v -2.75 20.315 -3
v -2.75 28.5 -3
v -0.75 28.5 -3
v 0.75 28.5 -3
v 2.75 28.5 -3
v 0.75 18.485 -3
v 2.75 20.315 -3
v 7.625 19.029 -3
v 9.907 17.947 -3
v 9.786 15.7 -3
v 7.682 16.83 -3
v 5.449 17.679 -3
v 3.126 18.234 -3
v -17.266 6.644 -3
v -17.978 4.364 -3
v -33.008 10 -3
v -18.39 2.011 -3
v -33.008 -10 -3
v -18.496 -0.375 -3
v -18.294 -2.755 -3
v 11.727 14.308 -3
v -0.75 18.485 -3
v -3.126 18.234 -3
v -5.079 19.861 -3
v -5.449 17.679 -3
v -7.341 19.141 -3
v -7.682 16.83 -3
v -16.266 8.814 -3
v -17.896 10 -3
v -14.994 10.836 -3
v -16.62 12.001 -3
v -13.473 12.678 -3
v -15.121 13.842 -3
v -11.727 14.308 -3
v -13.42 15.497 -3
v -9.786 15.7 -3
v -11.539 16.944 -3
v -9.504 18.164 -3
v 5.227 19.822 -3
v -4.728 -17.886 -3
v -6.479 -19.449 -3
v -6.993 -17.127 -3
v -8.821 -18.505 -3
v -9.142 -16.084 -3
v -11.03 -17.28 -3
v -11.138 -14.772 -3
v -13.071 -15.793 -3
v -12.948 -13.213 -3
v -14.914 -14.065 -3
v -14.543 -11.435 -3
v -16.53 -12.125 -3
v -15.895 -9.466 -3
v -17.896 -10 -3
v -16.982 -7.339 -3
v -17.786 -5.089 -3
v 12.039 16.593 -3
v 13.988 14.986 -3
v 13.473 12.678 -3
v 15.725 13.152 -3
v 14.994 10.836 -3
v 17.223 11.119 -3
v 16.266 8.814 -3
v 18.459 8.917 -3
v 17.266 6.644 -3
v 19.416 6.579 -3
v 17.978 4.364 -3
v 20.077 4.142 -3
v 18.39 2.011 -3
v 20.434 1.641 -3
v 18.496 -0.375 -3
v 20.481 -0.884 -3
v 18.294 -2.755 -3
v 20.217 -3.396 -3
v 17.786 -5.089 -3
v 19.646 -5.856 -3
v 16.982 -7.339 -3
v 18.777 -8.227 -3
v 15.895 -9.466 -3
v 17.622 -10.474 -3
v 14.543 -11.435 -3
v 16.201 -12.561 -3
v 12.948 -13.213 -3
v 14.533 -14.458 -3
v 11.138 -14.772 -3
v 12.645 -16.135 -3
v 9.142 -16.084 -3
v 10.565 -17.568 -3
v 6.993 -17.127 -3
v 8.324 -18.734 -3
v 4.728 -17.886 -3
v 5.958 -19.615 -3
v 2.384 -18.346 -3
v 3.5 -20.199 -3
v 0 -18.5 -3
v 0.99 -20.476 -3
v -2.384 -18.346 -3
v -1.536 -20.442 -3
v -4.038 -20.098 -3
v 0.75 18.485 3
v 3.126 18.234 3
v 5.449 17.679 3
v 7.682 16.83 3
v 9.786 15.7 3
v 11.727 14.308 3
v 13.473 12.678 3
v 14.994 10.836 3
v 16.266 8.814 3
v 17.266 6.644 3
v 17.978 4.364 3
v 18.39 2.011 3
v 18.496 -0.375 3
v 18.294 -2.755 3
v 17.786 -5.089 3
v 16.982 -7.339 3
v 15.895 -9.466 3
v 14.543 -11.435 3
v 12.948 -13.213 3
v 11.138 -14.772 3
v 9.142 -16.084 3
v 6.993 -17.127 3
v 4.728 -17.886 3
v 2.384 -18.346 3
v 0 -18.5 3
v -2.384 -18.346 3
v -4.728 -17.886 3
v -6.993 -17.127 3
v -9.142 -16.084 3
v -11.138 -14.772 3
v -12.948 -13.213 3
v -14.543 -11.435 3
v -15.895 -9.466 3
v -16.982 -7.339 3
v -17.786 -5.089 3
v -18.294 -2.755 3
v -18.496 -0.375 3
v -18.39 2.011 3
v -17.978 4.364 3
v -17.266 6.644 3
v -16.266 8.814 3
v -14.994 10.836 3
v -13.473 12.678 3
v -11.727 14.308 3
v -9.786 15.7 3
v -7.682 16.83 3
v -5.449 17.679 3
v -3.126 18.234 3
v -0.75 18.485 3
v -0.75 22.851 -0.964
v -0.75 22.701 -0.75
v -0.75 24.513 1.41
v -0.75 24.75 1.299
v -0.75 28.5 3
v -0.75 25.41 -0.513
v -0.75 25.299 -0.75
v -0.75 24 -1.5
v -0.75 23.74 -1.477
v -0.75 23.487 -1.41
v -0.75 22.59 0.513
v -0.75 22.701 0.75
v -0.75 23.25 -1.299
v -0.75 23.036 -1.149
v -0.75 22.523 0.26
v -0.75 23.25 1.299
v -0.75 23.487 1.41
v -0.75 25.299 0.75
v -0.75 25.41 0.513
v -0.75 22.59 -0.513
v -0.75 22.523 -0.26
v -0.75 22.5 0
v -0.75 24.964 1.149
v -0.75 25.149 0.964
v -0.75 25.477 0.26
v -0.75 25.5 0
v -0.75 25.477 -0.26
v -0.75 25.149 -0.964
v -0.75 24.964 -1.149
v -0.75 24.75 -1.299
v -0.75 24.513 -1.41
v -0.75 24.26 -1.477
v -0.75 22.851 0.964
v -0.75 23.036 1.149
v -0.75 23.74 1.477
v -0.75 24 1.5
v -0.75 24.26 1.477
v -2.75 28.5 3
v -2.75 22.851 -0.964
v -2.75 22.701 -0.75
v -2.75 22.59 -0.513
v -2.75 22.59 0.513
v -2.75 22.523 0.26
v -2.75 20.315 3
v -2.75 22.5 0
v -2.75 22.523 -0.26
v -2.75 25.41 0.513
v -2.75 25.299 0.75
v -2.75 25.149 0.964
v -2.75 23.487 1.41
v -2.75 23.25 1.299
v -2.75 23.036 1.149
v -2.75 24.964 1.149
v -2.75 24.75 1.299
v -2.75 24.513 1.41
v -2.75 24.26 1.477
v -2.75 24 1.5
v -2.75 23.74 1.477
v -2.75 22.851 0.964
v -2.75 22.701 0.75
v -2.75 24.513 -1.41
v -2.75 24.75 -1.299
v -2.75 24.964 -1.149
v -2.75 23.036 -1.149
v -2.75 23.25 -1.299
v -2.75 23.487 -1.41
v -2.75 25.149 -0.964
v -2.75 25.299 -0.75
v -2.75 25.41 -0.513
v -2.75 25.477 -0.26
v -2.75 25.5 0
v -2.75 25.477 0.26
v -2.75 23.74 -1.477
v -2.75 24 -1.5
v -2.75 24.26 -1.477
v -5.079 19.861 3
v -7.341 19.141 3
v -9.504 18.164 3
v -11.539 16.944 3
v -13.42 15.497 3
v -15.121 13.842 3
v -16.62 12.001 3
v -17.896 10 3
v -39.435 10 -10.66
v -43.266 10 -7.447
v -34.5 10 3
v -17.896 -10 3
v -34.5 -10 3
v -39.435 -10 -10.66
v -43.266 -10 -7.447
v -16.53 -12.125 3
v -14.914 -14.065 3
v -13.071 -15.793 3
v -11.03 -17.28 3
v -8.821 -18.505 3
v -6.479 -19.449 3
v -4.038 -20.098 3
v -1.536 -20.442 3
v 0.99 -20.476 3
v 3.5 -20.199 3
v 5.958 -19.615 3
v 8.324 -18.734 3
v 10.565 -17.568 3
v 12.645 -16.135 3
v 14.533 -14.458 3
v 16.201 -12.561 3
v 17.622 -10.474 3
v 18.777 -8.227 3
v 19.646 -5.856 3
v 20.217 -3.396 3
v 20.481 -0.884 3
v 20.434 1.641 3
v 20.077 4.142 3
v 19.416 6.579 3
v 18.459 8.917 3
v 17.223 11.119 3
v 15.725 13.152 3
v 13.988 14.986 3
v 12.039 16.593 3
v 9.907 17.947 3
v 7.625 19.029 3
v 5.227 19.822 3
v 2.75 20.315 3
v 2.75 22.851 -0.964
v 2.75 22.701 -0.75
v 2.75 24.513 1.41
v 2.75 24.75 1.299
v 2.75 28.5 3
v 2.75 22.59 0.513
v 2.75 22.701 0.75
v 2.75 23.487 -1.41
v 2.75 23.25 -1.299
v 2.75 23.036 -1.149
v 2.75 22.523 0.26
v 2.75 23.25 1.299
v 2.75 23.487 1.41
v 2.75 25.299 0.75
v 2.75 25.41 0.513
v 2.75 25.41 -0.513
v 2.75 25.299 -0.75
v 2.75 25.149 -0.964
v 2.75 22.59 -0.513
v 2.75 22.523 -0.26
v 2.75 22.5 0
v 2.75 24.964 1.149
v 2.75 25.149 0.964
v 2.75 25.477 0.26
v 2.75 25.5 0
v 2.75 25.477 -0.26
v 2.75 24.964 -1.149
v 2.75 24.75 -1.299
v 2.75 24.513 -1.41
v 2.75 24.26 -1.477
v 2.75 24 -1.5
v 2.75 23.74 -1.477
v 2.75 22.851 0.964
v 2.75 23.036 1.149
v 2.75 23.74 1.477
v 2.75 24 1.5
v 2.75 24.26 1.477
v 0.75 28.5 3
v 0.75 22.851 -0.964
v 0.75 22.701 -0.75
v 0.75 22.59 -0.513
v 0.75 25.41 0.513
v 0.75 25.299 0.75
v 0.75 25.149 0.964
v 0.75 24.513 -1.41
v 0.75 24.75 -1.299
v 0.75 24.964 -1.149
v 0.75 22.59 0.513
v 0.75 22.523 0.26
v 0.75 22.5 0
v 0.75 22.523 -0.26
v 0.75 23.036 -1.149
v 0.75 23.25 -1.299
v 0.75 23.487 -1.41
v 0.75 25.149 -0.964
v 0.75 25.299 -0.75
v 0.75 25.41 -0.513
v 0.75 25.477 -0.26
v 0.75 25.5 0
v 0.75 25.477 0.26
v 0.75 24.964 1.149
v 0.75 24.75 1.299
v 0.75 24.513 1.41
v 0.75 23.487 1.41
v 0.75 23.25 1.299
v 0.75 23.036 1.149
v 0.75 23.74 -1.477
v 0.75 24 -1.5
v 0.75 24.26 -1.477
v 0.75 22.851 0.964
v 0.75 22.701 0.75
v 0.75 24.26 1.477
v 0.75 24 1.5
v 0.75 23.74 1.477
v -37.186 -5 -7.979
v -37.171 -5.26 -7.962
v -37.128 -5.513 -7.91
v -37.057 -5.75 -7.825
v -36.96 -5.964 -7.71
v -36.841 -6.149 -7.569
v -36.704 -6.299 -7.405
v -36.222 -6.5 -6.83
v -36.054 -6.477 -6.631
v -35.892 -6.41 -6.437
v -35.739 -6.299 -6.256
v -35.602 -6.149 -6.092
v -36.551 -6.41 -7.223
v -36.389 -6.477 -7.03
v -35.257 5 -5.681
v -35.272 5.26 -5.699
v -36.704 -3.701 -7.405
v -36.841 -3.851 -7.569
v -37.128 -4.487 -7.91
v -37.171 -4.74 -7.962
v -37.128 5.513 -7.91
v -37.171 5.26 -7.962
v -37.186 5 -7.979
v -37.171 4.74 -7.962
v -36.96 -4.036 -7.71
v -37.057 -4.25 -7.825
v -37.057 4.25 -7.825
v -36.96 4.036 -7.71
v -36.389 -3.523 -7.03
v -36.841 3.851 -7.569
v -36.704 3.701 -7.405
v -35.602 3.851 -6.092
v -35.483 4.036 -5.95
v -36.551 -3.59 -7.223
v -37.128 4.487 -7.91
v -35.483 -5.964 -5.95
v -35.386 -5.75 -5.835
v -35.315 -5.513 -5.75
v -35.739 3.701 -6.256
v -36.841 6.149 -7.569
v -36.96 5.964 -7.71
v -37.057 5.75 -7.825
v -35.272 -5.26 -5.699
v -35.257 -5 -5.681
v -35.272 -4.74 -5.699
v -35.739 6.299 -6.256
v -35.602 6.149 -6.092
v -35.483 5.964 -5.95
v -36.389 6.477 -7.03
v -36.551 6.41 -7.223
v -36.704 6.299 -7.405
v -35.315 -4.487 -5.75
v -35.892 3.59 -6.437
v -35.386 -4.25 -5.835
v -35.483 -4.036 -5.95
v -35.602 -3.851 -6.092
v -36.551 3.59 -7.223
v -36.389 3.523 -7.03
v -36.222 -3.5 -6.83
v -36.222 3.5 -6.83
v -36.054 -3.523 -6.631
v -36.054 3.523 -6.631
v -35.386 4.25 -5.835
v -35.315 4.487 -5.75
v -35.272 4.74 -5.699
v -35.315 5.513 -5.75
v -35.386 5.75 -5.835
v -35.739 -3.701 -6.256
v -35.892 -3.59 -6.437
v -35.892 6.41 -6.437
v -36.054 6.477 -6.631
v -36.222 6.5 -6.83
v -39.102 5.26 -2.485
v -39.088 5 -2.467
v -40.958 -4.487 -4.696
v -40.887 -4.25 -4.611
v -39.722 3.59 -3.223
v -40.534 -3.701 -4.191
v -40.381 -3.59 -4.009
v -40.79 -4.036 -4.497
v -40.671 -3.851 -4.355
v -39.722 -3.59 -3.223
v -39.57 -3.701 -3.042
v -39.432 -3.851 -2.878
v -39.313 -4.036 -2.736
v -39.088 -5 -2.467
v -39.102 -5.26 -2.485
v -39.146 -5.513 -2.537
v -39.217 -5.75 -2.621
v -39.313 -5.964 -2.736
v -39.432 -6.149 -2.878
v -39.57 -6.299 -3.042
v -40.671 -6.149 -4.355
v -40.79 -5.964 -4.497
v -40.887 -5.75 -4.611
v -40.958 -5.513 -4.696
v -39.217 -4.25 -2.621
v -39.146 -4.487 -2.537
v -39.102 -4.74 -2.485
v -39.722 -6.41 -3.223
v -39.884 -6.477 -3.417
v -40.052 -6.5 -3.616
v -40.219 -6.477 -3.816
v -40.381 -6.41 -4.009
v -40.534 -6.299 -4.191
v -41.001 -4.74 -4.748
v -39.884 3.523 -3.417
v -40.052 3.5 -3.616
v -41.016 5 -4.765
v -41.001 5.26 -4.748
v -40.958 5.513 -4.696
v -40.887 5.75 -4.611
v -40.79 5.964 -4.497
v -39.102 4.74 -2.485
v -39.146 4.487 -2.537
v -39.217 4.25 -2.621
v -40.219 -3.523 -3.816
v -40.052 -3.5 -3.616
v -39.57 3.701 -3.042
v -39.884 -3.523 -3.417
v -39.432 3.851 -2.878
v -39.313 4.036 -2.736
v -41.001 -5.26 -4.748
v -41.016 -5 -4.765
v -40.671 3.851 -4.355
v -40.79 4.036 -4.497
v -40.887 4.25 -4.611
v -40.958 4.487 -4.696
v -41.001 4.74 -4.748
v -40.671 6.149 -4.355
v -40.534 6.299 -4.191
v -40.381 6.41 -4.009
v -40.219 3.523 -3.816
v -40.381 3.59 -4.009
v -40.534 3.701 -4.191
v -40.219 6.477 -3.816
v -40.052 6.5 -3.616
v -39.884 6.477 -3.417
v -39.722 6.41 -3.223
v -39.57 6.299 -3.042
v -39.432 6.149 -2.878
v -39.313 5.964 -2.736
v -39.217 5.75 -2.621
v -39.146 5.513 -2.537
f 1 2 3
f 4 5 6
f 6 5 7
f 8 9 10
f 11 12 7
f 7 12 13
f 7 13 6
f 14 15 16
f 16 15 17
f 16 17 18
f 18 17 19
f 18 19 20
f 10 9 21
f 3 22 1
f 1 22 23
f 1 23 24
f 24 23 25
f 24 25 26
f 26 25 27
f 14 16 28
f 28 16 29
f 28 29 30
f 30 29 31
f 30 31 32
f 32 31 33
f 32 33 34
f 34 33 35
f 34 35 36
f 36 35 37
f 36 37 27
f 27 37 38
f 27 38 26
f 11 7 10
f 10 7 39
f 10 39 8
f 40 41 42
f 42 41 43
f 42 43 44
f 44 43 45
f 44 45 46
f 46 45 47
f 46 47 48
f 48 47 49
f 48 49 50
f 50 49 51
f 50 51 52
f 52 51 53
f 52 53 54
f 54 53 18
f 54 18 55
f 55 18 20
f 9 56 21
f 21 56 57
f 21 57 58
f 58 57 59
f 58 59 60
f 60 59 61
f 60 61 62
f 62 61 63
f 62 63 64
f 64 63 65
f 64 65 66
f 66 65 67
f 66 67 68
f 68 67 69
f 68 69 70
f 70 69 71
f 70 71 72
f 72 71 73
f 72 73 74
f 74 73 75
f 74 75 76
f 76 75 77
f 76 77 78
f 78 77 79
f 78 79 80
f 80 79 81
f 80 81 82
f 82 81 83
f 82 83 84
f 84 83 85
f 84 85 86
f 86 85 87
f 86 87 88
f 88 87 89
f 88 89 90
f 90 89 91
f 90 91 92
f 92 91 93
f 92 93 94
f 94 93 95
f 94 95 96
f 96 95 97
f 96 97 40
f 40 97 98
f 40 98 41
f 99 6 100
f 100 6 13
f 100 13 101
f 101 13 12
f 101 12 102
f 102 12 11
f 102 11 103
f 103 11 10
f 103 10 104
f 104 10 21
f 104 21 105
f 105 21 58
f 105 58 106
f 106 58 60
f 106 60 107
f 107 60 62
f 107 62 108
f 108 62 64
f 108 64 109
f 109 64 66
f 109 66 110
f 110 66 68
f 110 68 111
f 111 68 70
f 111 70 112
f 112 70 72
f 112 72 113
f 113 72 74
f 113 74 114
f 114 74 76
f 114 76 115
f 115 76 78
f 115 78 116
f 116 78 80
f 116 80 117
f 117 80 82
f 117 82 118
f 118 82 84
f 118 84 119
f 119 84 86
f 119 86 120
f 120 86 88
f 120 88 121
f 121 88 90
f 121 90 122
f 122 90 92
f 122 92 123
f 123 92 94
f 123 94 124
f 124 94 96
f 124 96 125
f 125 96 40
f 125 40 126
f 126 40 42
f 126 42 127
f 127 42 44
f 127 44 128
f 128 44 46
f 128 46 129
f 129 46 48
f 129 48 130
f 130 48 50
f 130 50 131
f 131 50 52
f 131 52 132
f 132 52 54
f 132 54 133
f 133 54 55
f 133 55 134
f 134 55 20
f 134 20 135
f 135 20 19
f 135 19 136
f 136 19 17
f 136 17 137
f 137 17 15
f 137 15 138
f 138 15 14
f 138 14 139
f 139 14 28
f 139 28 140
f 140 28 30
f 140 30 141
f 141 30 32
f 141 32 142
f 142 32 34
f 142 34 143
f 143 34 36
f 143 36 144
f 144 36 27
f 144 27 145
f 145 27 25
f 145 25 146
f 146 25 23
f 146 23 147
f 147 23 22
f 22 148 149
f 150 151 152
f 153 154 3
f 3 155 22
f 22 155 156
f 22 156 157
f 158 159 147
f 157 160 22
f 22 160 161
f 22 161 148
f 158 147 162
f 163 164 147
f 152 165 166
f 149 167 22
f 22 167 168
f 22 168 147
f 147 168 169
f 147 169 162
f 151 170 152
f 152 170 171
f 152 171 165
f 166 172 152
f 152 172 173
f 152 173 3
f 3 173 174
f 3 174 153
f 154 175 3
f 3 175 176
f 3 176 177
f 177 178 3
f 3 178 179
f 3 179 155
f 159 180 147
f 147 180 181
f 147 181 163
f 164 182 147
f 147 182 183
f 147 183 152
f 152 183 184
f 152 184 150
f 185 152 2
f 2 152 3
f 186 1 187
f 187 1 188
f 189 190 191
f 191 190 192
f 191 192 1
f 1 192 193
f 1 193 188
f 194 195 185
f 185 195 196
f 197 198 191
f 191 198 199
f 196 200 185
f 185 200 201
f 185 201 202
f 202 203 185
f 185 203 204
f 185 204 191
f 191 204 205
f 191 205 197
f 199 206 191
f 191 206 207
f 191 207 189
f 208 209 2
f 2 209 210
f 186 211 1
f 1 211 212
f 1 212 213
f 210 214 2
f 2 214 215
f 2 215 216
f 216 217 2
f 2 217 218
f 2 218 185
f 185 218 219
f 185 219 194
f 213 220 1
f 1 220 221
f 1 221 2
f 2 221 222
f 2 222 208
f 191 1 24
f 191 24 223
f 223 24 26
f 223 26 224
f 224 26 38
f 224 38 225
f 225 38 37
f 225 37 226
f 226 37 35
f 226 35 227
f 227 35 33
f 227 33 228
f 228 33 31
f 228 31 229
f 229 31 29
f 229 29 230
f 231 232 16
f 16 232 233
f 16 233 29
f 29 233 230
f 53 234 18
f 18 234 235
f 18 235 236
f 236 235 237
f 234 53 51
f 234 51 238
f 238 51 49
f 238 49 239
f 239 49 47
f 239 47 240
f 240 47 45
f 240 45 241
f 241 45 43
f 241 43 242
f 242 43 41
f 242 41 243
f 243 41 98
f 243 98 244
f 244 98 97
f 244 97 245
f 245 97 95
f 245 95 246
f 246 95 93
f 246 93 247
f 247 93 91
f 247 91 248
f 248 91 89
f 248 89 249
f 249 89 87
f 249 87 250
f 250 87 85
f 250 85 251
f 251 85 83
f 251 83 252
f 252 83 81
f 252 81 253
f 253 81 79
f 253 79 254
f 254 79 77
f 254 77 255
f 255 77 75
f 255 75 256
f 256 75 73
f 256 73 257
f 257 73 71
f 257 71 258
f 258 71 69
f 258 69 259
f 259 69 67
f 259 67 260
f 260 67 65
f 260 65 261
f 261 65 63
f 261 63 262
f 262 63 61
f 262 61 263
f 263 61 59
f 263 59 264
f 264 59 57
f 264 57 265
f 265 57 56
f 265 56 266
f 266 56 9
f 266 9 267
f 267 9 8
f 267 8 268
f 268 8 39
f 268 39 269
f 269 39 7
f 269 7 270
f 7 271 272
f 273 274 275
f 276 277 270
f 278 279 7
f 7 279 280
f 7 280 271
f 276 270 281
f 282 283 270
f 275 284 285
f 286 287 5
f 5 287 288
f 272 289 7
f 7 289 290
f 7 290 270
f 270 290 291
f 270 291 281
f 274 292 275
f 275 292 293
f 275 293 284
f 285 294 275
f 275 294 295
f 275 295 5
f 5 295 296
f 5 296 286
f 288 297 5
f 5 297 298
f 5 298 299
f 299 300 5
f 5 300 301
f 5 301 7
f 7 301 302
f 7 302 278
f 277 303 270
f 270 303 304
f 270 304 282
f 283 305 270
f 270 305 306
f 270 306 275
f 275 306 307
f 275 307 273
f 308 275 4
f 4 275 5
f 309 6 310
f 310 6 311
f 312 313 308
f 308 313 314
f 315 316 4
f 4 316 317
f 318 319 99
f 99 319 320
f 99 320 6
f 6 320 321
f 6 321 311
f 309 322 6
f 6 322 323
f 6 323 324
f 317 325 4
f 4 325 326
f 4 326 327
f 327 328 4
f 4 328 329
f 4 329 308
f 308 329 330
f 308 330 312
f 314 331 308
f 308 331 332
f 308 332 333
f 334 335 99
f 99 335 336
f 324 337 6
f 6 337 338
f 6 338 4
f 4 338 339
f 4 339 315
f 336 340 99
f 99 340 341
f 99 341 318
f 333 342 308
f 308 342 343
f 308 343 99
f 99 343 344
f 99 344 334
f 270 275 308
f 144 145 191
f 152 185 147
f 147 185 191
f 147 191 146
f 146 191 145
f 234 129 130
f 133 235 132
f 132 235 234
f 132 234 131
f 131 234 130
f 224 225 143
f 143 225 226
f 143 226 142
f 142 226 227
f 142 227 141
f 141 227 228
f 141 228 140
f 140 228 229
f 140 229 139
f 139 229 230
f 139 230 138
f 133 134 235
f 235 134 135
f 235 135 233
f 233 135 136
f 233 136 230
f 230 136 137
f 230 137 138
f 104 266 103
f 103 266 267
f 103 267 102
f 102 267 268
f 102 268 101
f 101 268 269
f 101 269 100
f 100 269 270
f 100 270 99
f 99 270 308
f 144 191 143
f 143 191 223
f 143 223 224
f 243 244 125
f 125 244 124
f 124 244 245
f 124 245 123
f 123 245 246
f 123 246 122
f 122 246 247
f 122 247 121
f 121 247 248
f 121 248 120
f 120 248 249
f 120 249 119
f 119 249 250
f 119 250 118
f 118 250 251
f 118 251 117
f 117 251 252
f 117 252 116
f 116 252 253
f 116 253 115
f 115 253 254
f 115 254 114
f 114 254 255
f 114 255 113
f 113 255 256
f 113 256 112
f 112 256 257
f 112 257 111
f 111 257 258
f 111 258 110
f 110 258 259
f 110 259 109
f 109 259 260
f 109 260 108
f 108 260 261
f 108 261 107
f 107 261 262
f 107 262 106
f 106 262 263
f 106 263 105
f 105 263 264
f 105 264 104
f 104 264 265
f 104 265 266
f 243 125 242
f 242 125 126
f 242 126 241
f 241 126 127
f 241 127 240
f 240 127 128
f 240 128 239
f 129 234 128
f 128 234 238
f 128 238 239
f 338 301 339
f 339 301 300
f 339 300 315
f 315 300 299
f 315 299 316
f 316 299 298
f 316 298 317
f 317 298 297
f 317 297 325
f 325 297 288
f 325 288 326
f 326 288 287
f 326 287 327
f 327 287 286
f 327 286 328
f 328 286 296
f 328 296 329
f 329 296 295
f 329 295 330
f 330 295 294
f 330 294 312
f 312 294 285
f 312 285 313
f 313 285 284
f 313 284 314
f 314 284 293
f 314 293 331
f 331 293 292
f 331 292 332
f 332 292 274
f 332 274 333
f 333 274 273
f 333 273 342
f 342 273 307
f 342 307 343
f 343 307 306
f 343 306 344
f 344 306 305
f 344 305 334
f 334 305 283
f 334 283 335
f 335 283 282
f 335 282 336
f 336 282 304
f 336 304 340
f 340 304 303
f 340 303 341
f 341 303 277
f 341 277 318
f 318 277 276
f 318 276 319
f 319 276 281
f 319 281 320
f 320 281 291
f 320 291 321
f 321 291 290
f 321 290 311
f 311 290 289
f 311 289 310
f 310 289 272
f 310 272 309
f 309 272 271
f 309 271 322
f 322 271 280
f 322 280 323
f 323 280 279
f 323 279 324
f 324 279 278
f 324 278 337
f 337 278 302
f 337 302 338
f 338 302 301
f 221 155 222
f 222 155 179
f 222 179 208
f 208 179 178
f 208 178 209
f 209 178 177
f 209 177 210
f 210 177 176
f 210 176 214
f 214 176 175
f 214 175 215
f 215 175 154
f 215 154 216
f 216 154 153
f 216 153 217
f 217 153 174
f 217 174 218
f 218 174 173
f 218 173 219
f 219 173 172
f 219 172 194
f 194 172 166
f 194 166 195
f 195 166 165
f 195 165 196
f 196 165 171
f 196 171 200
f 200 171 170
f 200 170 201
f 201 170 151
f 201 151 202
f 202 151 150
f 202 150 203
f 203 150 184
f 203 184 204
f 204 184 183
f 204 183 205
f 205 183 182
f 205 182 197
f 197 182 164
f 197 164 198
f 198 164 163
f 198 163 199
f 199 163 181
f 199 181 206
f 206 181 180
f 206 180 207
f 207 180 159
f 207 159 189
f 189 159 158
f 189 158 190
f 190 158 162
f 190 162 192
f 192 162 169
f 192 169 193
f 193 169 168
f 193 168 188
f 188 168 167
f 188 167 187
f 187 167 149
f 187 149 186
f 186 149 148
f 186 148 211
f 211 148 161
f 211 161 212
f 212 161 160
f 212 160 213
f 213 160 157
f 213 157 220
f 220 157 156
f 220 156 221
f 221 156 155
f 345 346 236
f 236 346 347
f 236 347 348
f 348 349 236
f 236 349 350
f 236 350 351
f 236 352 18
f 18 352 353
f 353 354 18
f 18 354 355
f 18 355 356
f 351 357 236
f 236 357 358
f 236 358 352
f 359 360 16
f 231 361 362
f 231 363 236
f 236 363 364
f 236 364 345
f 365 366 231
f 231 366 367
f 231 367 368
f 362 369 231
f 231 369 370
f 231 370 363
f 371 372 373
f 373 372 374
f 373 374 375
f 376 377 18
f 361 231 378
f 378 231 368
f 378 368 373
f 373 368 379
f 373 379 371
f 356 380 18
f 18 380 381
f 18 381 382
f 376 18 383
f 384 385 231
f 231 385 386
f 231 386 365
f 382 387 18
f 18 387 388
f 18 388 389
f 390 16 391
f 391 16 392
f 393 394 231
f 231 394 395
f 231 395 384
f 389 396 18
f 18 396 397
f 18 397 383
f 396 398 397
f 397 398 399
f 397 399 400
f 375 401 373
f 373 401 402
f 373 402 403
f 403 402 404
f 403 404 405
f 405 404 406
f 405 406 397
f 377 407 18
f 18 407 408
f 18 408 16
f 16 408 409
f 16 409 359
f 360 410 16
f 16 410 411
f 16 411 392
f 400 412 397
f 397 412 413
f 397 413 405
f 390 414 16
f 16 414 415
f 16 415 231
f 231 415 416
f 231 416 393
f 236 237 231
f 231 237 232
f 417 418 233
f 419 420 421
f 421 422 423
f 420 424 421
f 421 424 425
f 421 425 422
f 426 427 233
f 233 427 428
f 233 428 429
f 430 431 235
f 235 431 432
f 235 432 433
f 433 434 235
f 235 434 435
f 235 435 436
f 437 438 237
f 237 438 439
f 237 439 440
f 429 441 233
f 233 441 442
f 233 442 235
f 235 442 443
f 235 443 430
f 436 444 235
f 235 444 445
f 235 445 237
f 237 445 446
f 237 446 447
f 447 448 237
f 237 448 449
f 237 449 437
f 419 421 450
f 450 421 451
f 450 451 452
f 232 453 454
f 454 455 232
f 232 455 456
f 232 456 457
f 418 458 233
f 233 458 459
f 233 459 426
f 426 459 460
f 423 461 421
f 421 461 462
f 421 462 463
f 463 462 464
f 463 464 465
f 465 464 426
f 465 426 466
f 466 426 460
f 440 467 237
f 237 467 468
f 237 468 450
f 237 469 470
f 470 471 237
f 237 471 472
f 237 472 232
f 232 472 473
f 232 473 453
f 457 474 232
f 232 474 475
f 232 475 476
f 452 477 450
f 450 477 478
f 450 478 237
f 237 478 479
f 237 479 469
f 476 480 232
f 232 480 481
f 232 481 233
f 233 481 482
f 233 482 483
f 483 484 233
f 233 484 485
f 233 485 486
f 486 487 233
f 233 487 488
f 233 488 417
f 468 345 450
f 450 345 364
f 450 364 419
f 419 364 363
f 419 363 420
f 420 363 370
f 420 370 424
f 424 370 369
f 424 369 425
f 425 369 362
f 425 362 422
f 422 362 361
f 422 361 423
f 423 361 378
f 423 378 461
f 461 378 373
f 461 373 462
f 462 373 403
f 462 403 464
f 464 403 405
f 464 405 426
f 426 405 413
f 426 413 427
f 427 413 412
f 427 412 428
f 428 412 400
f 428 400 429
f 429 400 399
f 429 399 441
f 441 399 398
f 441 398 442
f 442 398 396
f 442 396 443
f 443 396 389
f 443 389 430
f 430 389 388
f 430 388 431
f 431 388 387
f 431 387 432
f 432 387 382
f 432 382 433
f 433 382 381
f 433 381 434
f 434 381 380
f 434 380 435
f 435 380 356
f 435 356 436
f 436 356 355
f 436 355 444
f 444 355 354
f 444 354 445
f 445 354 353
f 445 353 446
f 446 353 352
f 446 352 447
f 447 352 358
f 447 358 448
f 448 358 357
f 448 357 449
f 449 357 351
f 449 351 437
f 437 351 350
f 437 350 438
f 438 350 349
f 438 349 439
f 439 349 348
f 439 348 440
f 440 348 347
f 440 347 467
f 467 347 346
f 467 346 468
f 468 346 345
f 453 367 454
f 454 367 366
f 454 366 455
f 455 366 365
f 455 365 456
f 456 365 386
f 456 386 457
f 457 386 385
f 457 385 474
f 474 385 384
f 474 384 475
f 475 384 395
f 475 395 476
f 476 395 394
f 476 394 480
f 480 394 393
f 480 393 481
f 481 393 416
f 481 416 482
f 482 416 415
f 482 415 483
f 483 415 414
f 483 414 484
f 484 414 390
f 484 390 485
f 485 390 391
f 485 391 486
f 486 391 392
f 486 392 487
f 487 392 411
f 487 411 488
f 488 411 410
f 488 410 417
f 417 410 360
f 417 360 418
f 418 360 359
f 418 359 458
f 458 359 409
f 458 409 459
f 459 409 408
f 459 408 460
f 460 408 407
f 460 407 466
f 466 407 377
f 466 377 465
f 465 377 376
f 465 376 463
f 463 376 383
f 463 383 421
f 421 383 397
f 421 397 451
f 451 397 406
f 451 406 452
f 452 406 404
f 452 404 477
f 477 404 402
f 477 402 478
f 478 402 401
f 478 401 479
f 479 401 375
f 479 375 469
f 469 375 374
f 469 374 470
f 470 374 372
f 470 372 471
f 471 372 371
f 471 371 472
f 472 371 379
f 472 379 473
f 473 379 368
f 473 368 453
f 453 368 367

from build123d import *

# Parameters (mm, degrees)
BOSS_EXTRUDE1_DEPTH             = 3
SKETCH2_R                       = 1.5
CUT_EXTRUDE1_DEPTH              = 21.5
CUT_EXTRUDE1_DEPTH_BACK         = 35.5
BOSS_EXTRUDE2_REACH             = 30.5
BOSS_EXTRUDE2_DIRECTION_2_REACH = 22.5
SKETCH4_R                       = 1.5
CUT_EXTRUDE2_DEPTH              = 46.913208795
CUT_EXTRUDE2_DEPTH_BACK         = 12.714884867


with BuildPart() as part:
    # Sketch1 → Boss-Extrude1 (new body, symmetric)
    with BuildSketch(Plane.XY):
        with BuildLine():
            ThreePointArc((20.5, 0), (15.437373481, 13.48842096), (2.75, 20.314711418))
            Line((2.75, 20.314711418), (2.75, 18.294466376))
            ThreePointArc((2.75, 18.294466376), (14.020074893, 12.070107705), (18.5, 0))
            ThreePointArc((18.5, 0), (-12.070107705, -14.020074893), (-2.75, 18.294466376))
            Line((-2.75, 18.294466376), (-2.75, 20.314711418))
            ThreePointArc((-2.75, 20.314711418), (-11.53940193, 16.943795416), (-17.895530168, 10))
            ThreePointArc((-17.895530168, 10), (-20.5, 0), (-17.895530168, -10))
            ThreePointArc((-17.895530168, -10), (5.166799374, -19.838200126), (20.5, 0))
        make_face()
        with BuildLine():
            ThreePointArc((2.75, 20.314711418), (1.752101194, 20.424988162), (0.75, 20.486275894))
            Line((0.75, 20.486275894), (0.75, 18.484791046))
            ThreePointArc((0.75, 18.484791046), (1.752585481, 18.416797879), (2.75, 18.294466376))
            Line((2.75, 18.294466376), (2.75, 20.314711418))
        make_face()
        with BuildLine():
            Line((-0.75, 18.484791046), (-0.75, 20.486275894))
            ThreePointArc((-0.75, 20.486275894), (-1.752101194, 20.424988162), (-2.75, 20.314711418))
            Line((-2.75, 20.314711418), (-2.75, 18.294466376))
            ThreePointArc((-2.75, 18.294466376), (-1.752585481, 18.416797879), (-0.75, 18.484791046))
        make_face()
        with BuildLine():
            ThreePointArc((-2.75, 20.314711418), (-1.752101194, 20.424988162), (-0.75, 20.486275894))
            Line((-0.75, 20.486275894), (-0.75, 28.5))
            Line((-0.75, 28.5), (-2.75, 28.5))
            Line((-2.75, 28.5), (-2.75, 25.5))
            Line((-2.75, 25.5), (-2.75, 22.5))
            Line((-2.75, 22.5), (-2.75, 20.314711418))
        make_face()
        with BuildLine():
            Line((2.75, 25.5), (2.75, 28.5))
            Line((2.75, 28.5), (0.75, 28.5))
            Line((0.75, 28.5), (0.75, 20.486275894))
            ThreePointArc((0.75, 20.486275894), (1.752101194, 20.424988162), (2.75, 20.314711418))
            Line((2.75, 20.314711418), (2.75, 22.5))
            Line((2.75, 22.5), (2.75, 25.5))
        make_face()
        with BuildLine():
            Line((-20.5, -10), (-17.895530168, -10))
            ThreePointArc((-17.895530168, -10), (-20.5, 0), (-17.895530168, 10))
            Line((-17.895530168, 10), (-20.5, 10))
            Line((-20.5, 10), (-34.5, 10))
            Line((-34.5, 10), (-34.5, -10))
            Line((-34.5, -10), (-20.5, -10))
        make_face()
    extrude(amount=BOSS_EXTRUDE1_DEPTH, both=True)

    # Sketch2 → Cut-Extrude1 (cut, two sides)
    with BuildSketch(Plane(origin=(0, 0, 0), x_dir=(0, 0, -1), z_dir=(1, 0, 0))) as cut_extrude1_sk:
        with Locations((0, 24)):
            Circle(SKETCH2_R)
    extrude(amount=CUT_EXTRUDE1_DEPTH, mode=Mode.SUBTRACT)
    extrude(cut_extrude1_sk.sketch, amount=-CUT_EXTRUDE1_DEPTH_BACK, mode=Mode.SUBTRACT)

    # Boss-Extrude2: up to this face of the body (flat: up to its plane)
    boss_extrude2_end = Plane(part.part.faces().sort_by_distance((-26.197765084, 10, 0))[0])
    # Sketch3 → Boss-Extrude2 (add, up to the picked face)
    with BuildSketch(Plane(origin=(0, 0, 0), x_dir=(1, 0, 0), z_dir=(0, 1, 0)), mode=Mode.PRIVATE) as boss_extrude2_sk1:
        Polygon((-34.5, -3), (-43.265659653, 7.446506383), (-39.435437437, 10.660444431), (-33.00756134, 3), align=None)
    boss_extrude2_tool1 = split(extrude(boss_extrude2_sk1.sketch, amount=BOSS_EXTRUDE2_REACH, mode=Mode.PRIVATE), bisect_by=boss_extrude2_end, keep=Keep.BOTH, mode=Mode.PRIVATE)
    add(boss_extrude2_tool1.solids().sort_by_distance((-37.620413, 0, -4.408594))[0])

    # Boss-Extrude2 direction 2: up to this face of the body (flat: up to its plane)
    boss_extrude2_direction_2_end = Plane(part.part.faces().sort_by_distance((-26.197765084, -10, 0))[0])
    # Sketch3 → Boss-Extrude2 direction 2 (add, up to the picked face)
    with BuildSketch(Plane(origin=(0, 0, 0), x_dir=(1, 0, 0), z_dir=(0, 1, 0)), mode=Mode.PRIVATE) as boss_extrude2_direction_2_sk1:
        Polygon((-34.5, -3), (-43.265659653, 7.446506383), (-39.435437437, 10.660444431), (-33.00756134, 3), align=None)
    boss_extrude2_direction_2_tool1 = split(extrude(boss_extrude2_direction_2_sk1.sketch, amount=-BOSS_EXTRUDE2_DIRECTION_2_REACH, mode=Mode.PRIVATE), bisect_by=boss_extrude2_direction_2_end, keep=Keep.BOTH, mode=Mode.PRIVATE)
    add(boss_extrude2_direction_2_tool1.solids().sort_by_distance((-37.620413, 0, -4.408594))[0])

    # Sketch4 → Cut-Extrude2 (cut, two sides)
    with BuildSketch(Plane(origin=(-17.892420479, 0, 15.013523425), x_dir=(-0.64278761, 0, -0.766044443), z_dir=(0.766044443, 0, -0.64278761))) as cut_extrude2_sk:
        with Locations((28.514984785, 5)):
            Circle(SKETCH4_R)
        with Locations((28.514984785, -5)):
            Circle(SKETCH4_R)
    extrude(amount=CUT_EXTRUDE2_DEPTH, mode=Mode.SUBTRACT)
    extrude(cut_extrude2_sk.sketch, amount=-CUT_EXTRUDE2_DEPTH_BACK, mode=Mode.SUBTRACT)


solid = part.part
